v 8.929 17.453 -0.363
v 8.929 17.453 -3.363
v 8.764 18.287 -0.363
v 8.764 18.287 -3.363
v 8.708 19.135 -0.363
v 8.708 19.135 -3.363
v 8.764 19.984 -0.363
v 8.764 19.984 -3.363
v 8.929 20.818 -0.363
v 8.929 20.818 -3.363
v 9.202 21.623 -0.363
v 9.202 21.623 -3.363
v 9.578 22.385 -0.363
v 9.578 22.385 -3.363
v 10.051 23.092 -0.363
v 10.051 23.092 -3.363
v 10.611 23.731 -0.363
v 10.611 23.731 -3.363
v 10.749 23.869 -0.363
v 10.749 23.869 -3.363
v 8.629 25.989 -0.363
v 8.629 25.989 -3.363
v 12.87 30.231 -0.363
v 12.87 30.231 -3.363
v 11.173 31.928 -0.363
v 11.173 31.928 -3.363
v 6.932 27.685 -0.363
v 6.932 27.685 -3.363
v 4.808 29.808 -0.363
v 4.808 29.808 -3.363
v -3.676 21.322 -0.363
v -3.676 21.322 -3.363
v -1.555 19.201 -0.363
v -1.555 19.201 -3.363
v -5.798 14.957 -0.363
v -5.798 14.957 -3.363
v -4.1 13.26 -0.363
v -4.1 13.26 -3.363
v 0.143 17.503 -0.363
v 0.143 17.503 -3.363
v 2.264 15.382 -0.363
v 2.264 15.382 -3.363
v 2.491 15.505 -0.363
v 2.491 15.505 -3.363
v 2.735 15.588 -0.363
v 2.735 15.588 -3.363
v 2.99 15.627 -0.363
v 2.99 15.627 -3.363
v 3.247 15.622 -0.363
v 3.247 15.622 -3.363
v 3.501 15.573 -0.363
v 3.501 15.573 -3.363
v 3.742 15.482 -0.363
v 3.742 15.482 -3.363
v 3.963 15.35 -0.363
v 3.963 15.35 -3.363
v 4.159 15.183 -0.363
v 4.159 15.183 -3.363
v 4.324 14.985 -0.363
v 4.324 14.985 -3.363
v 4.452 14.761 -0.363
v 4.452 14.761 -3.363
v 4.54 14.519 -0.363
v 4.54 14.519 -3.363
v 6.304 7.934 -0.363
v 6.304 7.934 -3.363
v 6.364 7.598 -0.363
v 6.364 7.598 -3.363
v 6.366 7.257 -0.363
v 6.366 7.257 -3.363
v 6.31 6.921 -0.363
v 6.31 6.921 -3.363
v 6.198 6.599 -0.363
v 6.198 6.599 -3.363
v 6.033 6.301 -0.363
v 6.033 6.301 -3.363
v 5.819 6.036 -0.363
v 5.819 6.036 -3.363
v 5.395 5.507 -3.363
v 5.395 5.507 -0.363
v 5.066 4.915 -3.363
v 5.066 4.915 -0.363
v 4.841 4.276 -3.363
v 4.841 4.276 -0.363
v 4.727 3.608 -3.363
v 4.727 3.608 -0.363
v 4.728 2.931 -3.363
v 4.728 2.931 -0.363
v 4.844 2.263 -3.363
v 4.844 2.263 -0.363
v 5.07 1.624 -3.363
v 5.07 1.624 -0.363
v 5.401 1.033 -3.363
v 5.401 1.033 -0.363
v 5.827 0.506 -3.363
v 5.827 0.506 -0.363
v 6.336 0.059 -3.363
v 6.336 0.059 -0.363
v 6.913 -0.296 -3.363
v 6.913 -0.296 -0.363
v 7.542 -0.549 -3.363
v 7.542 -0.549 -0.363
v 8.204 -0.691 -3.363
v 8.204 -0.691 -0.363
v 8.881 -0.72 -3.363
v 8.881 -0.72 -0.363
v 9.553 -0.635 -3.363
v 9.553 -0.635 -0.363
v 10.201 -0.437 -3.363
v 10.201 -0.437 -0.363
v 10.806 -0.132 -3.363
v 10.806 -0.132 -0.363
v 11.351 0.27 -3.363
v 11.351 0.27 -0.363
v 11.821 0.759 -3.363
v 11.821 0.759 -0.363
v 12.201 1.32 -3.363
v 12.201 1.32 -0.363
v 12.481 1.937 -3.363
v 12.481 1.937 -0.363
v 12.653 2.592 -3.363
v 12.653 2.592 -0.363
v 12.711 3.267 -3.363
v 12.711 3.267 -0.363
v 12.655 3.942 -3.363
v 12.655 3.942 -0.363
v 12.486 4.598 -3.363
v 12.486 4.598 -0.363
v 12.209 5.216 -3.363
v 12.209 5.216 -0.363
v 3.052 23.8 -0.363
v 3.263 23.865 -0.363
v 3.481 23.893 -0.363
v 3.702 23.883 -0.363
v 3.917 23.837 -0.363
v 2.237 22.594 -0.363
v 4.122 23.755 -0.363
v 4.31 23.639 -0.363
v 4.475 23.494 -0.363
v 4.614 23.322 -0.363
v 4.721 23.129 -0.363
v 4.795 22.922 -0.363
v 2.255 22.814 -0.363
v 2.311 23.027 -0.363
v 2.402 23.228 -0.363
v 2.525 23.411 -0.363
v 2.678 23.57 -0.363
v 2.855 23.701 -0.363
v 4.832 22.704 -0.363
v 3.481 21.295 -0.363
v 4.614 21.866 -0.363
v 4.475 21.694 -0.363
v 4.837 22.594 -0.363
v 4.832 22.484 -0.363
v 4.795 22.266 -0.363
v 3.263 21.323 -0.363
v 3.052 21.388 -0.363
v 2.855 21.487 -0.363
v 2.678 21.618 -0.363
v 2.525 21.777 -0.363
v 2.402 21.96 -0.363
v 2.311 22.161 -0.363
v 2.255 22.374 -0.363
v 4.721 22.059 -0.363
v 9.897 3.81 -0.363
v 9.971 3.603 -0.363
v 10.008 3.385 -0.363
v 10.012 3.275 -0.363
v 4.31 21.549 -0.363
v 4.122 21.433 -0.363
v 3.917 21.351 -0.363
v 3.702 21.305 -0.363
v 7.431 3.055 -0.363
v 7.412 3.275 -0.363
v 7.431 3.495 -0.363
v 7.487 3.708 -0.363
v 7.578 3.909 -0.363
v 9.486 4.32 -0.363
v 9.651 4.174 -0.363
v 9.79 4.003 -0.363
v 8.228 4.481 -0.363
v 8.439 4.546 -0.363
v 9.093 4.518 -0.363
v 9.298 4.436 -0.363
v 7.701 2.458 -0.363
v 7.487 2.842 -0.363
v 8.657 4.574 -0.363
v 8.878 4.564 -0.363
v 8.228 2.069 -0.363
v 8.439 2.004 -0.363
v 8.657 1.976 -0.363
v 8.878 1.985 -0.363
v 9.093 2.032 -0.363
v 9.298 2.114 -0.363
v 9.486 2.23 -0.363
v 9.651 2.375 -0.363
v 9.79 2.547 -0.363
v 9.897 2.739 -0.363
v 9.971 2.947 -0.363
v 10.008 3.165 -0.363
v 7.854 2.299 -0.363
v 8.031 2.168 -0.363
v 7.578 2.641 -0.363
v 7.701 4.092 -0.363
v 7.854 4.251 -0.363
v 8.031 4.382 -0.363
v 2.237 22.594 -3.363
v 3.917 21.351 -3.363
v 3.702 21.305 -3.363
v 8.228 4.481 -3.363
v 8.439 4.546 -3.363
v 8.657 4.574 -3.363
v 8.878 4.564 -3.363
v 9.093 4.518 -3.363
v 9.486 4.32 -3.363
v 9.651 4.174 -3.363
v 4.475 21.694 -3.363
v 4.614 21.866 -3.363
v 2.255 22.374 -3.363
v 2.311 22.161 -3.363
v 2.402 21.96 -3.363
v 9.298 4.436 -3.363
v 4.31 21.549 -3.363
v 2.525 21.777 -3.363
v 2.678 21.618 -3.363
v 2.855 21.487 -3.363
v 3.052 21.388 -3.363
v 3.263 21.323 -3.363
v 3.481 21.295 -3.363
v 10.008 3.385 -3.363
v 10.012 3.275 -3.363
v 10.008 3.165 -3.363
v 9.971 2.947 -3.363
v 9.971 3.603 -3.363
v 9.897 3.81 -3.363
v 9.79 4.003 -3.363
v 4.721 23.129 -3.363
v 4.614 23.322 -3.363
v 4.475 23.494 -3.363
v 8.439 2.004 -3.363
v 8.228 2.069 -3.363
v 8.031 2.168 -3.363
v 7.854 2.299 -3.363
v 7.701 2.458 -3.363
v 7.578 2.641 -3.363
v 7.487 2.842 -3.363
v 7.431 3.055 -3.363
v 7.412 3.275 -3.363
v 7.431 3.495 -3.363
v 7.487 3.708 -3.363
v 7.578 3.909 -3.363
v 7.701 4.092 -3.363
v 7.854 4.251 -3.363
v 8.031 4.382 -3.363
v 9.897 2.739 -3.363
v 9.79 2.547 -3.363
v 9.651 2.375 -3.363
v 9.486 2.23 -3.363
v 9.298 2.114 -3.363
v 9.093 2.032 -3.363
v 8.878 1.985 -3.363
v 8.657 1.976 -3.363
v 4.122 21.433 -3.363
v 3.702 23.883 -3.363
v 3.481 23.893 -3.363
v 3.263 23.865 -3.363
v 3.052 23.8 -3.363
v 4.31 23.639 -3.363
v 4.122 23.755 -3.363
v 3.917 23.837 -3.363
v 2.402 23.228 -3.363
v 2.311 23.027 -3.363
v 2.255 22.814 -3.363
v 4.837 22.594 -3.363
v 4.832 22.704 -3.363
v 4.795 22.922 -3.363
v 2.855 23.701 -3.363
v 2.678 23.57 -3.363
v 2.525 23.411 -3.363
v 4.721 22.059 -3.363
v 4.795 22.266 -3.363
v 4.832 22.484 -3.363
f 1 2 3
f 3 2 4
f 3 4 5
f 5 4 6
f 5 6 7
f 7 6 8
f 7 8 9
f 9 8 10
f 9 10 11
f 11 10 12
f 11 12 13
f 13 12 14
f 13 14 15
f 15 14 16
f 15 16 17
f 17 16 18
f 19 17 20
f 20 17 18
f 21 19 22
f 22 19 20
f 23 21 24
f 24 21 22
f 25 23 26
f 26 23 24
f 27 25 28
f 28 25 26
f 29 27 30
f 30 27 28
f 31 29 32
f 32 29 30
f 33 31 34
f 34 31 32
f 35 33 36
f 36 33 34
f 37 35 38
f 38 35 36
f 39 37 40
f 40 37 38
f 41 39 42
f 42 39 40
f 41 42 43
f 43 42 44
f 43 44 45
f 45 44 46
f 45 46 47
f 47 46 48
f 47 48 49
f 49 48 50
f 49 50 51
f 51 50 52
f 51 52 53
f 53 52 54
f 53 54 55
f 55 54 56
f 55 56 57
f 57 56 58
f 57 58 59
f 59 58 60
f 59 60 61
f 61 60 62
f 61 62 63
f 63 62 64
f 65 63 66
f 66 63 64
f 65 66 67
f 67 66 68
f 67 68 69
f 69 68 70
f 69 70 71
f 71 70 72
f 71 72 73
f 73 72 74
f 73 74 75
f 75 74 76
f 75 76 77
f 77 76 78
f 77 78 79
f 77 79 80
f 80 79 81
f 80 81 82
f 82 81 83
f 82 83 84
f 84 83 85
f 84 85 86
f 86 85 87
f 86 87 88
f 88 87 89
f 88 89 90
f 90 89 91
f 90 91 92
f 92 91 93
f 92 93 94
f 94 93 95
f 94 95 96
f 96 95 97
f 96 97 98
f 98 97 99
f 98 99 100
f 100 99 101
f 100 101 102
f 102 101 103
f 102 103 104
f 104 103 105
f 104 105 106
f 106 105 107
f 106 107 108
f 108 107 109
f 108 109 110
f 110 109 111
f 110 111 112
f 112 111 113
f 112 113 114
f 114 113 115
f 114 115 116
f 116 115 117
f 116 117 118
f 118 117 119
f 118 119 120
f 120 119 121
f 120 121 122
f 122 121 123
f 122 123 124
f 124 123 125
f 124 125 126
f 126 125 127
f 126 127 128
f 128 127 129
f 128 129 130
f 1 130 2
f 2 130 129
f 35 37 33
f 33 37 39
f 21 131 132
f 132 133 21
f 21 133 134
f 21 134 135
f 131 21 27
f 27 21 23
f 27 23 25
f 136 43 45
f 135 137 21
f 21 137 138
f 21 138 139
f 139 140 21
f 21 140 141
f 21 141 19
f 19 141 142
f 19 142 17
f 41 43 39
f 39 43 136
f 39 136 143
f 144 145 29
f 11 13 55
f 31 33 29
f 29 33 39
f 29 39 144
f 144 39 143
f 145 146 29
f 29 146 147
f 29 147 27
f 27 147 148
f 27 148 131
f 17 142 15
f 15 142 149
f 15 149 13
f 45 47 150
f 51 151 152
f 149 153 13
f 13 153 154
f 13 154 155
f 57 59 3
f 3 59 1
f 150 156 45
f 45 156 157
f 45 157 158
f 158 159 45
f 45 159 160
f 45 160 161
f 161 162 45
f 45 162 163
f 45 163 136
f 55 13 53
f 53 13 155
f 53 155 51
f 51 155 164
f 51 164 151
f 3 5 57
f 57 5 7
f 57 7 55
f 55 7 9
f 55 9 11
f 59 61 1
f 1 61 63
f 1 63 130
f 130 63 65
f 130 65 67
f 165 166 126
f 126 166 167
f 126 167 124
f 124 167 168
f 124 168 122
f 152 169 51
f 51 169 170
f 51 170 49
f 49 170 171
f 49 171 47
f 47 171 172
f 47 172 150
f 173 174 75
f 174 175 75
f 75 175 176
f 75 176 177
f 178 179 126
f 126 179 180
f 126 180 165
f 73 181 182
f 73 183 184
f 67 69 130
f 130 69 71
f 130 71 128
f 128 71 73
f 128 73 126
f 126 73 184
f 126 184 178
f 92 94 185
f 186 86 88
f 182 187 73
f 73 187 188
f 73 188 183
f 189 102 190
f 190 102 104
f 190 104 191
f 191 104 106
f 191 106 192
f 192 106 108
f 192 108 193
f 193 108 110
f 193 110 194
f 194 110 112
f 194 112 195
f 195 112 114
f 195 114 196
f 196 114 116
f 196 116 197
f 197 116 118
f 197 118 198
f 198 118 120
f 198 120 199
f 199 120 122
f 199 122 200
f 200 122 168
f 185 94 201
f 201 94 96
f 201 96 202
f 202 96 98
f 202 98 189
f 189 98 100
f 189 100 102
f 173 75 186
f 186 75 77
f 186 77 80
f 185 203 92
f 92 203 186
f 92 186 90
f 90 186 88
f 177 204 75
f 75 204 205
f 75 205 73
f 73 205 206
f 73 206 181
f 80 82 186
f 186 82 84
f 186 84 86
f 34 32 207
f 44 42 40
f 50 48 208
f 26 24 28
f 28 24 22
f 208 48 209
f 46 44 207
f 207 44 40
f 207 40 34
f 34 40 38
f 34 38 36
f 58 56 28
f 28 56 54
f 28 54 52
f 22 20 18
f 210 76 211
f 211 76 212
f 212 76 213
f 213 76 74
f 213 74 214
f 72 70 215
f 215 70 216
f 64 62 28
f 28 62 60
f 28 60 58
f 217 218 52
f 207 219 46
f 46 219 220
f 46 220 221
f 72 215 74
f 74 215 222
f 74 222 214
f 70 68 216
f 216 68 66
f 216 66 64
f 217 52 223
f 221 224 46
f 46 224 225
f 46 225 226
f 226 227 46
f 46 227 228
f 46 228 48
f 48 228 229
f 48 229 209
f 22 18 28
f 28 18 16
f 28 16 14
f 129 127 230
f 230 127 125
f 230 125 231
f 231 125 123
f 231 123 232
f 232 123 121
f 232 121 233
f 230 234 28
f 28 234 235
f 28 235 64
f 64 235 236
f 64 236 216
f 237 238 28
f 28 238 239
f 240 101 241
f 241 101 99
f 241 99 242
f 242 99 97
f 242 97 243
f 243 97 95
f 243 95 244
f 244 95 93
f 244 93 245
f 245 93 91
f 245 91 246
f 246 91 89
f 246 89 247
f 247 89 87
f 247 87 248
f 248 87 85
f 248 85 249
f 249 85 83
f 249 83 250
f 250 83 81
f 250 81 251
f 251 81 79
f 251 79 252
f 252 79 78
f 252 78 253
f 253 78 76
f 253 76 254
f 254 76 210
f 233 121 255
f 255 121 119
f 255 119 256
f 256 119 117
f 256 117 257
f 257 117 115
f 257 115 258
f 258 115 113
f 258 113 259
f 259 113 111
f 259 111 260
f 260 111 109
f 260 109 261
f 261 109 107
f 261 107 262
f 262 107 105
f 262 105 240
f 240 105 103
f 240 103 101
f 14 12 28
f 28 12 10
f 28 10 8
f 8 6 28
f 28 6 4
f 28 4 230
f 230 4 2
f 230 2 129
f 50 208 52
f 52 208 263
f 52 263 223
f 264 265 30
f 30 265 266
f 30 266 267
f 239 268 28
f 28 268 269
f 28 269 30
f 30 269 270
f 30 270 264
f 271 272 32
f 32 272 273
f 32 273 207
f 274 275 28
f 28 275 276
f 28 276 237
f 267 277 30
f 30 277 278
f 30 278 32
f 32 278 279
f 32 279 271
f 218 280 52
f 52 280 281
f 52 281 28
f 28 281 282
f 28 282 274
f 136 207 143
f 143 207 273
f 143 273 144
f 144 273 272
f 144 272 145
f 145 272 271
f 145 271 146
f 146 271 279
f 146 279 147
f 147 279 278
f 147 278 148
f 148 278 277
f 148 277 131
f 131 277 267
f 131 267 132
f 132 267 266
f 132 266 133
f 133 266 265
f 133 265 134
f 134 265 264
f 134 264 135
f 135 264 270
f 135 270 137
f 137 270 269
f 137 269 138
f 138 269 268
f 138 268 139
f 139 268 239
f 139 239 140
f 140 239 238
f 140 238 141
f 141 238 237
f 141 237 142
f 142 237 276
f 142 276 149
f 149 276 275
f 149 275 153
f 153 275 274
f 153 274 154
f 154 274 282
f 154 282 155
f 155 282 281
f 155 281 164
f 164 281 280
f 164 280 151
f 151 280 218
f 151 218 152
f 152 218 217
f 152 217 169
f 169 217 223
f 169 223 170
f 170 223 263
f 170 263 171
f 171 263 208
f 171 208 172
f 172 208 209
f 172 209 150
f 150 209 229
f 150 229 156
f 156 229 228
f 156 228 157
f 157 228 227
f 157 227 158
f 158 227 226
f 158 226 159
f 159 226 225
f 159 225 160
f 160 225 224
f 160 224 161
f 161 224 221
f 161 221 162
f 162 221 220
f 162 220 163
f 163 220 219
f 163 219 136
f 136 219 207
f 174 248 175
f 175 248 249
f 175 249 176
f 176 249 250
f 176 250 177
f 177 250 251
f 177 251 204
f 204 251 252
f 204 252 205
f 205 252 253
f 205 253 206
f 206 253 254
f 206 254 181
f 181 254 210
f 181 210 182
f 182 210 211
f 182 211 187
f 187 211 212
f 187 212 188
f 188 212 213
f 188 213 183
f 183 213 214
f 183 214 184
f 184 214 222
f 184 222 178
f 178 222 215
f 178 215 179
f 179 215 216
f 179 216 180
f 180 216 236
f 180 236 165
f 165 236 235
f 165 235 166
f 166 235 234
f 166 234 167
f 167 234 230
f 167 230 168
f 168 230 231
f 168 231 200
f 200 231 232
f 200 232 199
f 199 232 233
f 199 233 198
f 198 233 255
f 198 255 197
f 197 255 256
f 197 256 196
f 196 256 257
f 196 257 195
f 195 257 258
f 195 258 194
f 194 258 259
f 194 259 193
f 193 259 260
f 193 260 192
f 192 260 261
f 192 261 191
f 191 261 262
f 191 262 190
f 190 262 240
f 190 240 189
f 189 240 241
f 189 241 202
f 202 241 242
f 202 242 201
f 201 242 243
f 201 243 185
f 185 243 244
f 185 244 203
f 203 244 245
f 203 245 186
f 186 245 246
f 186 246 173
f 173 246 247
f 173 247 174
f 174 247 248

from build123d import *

# Parameters (mm, degrees)
SKETCH_1_R      = 1.3
EXTRUDE_1_DEPTH = 3


with BuildPart() as part:
    # 草图1 → 凸台-拉伸1 (new body)
    with BuildSketch(Plane(origin=(0, 0, -3.362857667), x_dir=(-1, 0, 0), z_dir=(0, 0, -1))):
        with BuildLine():
            Line((-8.929456987, 17.45330102), (-12.208534908, 5.216337034))
            ThreePointArc((-12.208534908, 5.216337034), (-8.203956956, -0.691485495), (-5.819308033, 6.03550946))
            ThreePointArc((-5.819308033, 6.03550946), (-6.310108859, 6.921233679), (-6.304159928, 7.933833034))
            Line((-6.304159928, 7.933833034), (-4.539684391, 14.518557193))
            ThreePointArc((-4.539684391, 14.518557193), (-3.62301138, 15.532716808), (-2.264294404, 15.382060533))
            Line((-2.264294404, 15.382060533), (-0.142530428, 17.503217343))
            Line((-0.142530428, 17.503217343), (4.099819599, 13.25965297))
            Line((4.099819599, 13.25965297), (5.797509256, 14.956856814))
            Line((5.797509256, 14.956856814), (1.554532399, 19.201048196))
            Line((1.554532399, 19.201048196), (3.675778765, 21.321687543))
            Line((3.675778765, 21.321687543), (-4.808443123, 29.808337985))
            Line((-4.808443123, 29.808337985), (-6.931968366, 27.685420414))
            Line((-6.931968366, 27.685420414), (-11.173246227, 31.927912314))
            Line((-11.173246227, 31.927912314), (-12.870428791, 30.231215419))
            Line((-12.870428791, 30.231215419), (-8.629080401, 25.98865297))
            Line((-8.629080401, 25.98865297), (-10.749072595, 23.869267436))
            Line((-10.749072595, 23.869267436), (-10.611098311, 23.731253658))
            ThreePointArc((-10.611098311, 23.731253658), (-8.929299443, 20.817545637), (-8.929456987, 17.45330102))
        make_face()
        with Locations(Location((-3.536567574, 22.593983824, 0), (0, 0, 180))):
            Circle(SKETCH_1_R, mode=Mode.SUBTRACT)
        with Locations(Location((-8.71249984, 3.274951558, 0), (0, 0, 180))):
            Circle(SKETCH_1_R, mode=Mode.SUBTRACT)
    extrude(amount=-EXTRUDE_1_DEPTH)


solid = part.part
